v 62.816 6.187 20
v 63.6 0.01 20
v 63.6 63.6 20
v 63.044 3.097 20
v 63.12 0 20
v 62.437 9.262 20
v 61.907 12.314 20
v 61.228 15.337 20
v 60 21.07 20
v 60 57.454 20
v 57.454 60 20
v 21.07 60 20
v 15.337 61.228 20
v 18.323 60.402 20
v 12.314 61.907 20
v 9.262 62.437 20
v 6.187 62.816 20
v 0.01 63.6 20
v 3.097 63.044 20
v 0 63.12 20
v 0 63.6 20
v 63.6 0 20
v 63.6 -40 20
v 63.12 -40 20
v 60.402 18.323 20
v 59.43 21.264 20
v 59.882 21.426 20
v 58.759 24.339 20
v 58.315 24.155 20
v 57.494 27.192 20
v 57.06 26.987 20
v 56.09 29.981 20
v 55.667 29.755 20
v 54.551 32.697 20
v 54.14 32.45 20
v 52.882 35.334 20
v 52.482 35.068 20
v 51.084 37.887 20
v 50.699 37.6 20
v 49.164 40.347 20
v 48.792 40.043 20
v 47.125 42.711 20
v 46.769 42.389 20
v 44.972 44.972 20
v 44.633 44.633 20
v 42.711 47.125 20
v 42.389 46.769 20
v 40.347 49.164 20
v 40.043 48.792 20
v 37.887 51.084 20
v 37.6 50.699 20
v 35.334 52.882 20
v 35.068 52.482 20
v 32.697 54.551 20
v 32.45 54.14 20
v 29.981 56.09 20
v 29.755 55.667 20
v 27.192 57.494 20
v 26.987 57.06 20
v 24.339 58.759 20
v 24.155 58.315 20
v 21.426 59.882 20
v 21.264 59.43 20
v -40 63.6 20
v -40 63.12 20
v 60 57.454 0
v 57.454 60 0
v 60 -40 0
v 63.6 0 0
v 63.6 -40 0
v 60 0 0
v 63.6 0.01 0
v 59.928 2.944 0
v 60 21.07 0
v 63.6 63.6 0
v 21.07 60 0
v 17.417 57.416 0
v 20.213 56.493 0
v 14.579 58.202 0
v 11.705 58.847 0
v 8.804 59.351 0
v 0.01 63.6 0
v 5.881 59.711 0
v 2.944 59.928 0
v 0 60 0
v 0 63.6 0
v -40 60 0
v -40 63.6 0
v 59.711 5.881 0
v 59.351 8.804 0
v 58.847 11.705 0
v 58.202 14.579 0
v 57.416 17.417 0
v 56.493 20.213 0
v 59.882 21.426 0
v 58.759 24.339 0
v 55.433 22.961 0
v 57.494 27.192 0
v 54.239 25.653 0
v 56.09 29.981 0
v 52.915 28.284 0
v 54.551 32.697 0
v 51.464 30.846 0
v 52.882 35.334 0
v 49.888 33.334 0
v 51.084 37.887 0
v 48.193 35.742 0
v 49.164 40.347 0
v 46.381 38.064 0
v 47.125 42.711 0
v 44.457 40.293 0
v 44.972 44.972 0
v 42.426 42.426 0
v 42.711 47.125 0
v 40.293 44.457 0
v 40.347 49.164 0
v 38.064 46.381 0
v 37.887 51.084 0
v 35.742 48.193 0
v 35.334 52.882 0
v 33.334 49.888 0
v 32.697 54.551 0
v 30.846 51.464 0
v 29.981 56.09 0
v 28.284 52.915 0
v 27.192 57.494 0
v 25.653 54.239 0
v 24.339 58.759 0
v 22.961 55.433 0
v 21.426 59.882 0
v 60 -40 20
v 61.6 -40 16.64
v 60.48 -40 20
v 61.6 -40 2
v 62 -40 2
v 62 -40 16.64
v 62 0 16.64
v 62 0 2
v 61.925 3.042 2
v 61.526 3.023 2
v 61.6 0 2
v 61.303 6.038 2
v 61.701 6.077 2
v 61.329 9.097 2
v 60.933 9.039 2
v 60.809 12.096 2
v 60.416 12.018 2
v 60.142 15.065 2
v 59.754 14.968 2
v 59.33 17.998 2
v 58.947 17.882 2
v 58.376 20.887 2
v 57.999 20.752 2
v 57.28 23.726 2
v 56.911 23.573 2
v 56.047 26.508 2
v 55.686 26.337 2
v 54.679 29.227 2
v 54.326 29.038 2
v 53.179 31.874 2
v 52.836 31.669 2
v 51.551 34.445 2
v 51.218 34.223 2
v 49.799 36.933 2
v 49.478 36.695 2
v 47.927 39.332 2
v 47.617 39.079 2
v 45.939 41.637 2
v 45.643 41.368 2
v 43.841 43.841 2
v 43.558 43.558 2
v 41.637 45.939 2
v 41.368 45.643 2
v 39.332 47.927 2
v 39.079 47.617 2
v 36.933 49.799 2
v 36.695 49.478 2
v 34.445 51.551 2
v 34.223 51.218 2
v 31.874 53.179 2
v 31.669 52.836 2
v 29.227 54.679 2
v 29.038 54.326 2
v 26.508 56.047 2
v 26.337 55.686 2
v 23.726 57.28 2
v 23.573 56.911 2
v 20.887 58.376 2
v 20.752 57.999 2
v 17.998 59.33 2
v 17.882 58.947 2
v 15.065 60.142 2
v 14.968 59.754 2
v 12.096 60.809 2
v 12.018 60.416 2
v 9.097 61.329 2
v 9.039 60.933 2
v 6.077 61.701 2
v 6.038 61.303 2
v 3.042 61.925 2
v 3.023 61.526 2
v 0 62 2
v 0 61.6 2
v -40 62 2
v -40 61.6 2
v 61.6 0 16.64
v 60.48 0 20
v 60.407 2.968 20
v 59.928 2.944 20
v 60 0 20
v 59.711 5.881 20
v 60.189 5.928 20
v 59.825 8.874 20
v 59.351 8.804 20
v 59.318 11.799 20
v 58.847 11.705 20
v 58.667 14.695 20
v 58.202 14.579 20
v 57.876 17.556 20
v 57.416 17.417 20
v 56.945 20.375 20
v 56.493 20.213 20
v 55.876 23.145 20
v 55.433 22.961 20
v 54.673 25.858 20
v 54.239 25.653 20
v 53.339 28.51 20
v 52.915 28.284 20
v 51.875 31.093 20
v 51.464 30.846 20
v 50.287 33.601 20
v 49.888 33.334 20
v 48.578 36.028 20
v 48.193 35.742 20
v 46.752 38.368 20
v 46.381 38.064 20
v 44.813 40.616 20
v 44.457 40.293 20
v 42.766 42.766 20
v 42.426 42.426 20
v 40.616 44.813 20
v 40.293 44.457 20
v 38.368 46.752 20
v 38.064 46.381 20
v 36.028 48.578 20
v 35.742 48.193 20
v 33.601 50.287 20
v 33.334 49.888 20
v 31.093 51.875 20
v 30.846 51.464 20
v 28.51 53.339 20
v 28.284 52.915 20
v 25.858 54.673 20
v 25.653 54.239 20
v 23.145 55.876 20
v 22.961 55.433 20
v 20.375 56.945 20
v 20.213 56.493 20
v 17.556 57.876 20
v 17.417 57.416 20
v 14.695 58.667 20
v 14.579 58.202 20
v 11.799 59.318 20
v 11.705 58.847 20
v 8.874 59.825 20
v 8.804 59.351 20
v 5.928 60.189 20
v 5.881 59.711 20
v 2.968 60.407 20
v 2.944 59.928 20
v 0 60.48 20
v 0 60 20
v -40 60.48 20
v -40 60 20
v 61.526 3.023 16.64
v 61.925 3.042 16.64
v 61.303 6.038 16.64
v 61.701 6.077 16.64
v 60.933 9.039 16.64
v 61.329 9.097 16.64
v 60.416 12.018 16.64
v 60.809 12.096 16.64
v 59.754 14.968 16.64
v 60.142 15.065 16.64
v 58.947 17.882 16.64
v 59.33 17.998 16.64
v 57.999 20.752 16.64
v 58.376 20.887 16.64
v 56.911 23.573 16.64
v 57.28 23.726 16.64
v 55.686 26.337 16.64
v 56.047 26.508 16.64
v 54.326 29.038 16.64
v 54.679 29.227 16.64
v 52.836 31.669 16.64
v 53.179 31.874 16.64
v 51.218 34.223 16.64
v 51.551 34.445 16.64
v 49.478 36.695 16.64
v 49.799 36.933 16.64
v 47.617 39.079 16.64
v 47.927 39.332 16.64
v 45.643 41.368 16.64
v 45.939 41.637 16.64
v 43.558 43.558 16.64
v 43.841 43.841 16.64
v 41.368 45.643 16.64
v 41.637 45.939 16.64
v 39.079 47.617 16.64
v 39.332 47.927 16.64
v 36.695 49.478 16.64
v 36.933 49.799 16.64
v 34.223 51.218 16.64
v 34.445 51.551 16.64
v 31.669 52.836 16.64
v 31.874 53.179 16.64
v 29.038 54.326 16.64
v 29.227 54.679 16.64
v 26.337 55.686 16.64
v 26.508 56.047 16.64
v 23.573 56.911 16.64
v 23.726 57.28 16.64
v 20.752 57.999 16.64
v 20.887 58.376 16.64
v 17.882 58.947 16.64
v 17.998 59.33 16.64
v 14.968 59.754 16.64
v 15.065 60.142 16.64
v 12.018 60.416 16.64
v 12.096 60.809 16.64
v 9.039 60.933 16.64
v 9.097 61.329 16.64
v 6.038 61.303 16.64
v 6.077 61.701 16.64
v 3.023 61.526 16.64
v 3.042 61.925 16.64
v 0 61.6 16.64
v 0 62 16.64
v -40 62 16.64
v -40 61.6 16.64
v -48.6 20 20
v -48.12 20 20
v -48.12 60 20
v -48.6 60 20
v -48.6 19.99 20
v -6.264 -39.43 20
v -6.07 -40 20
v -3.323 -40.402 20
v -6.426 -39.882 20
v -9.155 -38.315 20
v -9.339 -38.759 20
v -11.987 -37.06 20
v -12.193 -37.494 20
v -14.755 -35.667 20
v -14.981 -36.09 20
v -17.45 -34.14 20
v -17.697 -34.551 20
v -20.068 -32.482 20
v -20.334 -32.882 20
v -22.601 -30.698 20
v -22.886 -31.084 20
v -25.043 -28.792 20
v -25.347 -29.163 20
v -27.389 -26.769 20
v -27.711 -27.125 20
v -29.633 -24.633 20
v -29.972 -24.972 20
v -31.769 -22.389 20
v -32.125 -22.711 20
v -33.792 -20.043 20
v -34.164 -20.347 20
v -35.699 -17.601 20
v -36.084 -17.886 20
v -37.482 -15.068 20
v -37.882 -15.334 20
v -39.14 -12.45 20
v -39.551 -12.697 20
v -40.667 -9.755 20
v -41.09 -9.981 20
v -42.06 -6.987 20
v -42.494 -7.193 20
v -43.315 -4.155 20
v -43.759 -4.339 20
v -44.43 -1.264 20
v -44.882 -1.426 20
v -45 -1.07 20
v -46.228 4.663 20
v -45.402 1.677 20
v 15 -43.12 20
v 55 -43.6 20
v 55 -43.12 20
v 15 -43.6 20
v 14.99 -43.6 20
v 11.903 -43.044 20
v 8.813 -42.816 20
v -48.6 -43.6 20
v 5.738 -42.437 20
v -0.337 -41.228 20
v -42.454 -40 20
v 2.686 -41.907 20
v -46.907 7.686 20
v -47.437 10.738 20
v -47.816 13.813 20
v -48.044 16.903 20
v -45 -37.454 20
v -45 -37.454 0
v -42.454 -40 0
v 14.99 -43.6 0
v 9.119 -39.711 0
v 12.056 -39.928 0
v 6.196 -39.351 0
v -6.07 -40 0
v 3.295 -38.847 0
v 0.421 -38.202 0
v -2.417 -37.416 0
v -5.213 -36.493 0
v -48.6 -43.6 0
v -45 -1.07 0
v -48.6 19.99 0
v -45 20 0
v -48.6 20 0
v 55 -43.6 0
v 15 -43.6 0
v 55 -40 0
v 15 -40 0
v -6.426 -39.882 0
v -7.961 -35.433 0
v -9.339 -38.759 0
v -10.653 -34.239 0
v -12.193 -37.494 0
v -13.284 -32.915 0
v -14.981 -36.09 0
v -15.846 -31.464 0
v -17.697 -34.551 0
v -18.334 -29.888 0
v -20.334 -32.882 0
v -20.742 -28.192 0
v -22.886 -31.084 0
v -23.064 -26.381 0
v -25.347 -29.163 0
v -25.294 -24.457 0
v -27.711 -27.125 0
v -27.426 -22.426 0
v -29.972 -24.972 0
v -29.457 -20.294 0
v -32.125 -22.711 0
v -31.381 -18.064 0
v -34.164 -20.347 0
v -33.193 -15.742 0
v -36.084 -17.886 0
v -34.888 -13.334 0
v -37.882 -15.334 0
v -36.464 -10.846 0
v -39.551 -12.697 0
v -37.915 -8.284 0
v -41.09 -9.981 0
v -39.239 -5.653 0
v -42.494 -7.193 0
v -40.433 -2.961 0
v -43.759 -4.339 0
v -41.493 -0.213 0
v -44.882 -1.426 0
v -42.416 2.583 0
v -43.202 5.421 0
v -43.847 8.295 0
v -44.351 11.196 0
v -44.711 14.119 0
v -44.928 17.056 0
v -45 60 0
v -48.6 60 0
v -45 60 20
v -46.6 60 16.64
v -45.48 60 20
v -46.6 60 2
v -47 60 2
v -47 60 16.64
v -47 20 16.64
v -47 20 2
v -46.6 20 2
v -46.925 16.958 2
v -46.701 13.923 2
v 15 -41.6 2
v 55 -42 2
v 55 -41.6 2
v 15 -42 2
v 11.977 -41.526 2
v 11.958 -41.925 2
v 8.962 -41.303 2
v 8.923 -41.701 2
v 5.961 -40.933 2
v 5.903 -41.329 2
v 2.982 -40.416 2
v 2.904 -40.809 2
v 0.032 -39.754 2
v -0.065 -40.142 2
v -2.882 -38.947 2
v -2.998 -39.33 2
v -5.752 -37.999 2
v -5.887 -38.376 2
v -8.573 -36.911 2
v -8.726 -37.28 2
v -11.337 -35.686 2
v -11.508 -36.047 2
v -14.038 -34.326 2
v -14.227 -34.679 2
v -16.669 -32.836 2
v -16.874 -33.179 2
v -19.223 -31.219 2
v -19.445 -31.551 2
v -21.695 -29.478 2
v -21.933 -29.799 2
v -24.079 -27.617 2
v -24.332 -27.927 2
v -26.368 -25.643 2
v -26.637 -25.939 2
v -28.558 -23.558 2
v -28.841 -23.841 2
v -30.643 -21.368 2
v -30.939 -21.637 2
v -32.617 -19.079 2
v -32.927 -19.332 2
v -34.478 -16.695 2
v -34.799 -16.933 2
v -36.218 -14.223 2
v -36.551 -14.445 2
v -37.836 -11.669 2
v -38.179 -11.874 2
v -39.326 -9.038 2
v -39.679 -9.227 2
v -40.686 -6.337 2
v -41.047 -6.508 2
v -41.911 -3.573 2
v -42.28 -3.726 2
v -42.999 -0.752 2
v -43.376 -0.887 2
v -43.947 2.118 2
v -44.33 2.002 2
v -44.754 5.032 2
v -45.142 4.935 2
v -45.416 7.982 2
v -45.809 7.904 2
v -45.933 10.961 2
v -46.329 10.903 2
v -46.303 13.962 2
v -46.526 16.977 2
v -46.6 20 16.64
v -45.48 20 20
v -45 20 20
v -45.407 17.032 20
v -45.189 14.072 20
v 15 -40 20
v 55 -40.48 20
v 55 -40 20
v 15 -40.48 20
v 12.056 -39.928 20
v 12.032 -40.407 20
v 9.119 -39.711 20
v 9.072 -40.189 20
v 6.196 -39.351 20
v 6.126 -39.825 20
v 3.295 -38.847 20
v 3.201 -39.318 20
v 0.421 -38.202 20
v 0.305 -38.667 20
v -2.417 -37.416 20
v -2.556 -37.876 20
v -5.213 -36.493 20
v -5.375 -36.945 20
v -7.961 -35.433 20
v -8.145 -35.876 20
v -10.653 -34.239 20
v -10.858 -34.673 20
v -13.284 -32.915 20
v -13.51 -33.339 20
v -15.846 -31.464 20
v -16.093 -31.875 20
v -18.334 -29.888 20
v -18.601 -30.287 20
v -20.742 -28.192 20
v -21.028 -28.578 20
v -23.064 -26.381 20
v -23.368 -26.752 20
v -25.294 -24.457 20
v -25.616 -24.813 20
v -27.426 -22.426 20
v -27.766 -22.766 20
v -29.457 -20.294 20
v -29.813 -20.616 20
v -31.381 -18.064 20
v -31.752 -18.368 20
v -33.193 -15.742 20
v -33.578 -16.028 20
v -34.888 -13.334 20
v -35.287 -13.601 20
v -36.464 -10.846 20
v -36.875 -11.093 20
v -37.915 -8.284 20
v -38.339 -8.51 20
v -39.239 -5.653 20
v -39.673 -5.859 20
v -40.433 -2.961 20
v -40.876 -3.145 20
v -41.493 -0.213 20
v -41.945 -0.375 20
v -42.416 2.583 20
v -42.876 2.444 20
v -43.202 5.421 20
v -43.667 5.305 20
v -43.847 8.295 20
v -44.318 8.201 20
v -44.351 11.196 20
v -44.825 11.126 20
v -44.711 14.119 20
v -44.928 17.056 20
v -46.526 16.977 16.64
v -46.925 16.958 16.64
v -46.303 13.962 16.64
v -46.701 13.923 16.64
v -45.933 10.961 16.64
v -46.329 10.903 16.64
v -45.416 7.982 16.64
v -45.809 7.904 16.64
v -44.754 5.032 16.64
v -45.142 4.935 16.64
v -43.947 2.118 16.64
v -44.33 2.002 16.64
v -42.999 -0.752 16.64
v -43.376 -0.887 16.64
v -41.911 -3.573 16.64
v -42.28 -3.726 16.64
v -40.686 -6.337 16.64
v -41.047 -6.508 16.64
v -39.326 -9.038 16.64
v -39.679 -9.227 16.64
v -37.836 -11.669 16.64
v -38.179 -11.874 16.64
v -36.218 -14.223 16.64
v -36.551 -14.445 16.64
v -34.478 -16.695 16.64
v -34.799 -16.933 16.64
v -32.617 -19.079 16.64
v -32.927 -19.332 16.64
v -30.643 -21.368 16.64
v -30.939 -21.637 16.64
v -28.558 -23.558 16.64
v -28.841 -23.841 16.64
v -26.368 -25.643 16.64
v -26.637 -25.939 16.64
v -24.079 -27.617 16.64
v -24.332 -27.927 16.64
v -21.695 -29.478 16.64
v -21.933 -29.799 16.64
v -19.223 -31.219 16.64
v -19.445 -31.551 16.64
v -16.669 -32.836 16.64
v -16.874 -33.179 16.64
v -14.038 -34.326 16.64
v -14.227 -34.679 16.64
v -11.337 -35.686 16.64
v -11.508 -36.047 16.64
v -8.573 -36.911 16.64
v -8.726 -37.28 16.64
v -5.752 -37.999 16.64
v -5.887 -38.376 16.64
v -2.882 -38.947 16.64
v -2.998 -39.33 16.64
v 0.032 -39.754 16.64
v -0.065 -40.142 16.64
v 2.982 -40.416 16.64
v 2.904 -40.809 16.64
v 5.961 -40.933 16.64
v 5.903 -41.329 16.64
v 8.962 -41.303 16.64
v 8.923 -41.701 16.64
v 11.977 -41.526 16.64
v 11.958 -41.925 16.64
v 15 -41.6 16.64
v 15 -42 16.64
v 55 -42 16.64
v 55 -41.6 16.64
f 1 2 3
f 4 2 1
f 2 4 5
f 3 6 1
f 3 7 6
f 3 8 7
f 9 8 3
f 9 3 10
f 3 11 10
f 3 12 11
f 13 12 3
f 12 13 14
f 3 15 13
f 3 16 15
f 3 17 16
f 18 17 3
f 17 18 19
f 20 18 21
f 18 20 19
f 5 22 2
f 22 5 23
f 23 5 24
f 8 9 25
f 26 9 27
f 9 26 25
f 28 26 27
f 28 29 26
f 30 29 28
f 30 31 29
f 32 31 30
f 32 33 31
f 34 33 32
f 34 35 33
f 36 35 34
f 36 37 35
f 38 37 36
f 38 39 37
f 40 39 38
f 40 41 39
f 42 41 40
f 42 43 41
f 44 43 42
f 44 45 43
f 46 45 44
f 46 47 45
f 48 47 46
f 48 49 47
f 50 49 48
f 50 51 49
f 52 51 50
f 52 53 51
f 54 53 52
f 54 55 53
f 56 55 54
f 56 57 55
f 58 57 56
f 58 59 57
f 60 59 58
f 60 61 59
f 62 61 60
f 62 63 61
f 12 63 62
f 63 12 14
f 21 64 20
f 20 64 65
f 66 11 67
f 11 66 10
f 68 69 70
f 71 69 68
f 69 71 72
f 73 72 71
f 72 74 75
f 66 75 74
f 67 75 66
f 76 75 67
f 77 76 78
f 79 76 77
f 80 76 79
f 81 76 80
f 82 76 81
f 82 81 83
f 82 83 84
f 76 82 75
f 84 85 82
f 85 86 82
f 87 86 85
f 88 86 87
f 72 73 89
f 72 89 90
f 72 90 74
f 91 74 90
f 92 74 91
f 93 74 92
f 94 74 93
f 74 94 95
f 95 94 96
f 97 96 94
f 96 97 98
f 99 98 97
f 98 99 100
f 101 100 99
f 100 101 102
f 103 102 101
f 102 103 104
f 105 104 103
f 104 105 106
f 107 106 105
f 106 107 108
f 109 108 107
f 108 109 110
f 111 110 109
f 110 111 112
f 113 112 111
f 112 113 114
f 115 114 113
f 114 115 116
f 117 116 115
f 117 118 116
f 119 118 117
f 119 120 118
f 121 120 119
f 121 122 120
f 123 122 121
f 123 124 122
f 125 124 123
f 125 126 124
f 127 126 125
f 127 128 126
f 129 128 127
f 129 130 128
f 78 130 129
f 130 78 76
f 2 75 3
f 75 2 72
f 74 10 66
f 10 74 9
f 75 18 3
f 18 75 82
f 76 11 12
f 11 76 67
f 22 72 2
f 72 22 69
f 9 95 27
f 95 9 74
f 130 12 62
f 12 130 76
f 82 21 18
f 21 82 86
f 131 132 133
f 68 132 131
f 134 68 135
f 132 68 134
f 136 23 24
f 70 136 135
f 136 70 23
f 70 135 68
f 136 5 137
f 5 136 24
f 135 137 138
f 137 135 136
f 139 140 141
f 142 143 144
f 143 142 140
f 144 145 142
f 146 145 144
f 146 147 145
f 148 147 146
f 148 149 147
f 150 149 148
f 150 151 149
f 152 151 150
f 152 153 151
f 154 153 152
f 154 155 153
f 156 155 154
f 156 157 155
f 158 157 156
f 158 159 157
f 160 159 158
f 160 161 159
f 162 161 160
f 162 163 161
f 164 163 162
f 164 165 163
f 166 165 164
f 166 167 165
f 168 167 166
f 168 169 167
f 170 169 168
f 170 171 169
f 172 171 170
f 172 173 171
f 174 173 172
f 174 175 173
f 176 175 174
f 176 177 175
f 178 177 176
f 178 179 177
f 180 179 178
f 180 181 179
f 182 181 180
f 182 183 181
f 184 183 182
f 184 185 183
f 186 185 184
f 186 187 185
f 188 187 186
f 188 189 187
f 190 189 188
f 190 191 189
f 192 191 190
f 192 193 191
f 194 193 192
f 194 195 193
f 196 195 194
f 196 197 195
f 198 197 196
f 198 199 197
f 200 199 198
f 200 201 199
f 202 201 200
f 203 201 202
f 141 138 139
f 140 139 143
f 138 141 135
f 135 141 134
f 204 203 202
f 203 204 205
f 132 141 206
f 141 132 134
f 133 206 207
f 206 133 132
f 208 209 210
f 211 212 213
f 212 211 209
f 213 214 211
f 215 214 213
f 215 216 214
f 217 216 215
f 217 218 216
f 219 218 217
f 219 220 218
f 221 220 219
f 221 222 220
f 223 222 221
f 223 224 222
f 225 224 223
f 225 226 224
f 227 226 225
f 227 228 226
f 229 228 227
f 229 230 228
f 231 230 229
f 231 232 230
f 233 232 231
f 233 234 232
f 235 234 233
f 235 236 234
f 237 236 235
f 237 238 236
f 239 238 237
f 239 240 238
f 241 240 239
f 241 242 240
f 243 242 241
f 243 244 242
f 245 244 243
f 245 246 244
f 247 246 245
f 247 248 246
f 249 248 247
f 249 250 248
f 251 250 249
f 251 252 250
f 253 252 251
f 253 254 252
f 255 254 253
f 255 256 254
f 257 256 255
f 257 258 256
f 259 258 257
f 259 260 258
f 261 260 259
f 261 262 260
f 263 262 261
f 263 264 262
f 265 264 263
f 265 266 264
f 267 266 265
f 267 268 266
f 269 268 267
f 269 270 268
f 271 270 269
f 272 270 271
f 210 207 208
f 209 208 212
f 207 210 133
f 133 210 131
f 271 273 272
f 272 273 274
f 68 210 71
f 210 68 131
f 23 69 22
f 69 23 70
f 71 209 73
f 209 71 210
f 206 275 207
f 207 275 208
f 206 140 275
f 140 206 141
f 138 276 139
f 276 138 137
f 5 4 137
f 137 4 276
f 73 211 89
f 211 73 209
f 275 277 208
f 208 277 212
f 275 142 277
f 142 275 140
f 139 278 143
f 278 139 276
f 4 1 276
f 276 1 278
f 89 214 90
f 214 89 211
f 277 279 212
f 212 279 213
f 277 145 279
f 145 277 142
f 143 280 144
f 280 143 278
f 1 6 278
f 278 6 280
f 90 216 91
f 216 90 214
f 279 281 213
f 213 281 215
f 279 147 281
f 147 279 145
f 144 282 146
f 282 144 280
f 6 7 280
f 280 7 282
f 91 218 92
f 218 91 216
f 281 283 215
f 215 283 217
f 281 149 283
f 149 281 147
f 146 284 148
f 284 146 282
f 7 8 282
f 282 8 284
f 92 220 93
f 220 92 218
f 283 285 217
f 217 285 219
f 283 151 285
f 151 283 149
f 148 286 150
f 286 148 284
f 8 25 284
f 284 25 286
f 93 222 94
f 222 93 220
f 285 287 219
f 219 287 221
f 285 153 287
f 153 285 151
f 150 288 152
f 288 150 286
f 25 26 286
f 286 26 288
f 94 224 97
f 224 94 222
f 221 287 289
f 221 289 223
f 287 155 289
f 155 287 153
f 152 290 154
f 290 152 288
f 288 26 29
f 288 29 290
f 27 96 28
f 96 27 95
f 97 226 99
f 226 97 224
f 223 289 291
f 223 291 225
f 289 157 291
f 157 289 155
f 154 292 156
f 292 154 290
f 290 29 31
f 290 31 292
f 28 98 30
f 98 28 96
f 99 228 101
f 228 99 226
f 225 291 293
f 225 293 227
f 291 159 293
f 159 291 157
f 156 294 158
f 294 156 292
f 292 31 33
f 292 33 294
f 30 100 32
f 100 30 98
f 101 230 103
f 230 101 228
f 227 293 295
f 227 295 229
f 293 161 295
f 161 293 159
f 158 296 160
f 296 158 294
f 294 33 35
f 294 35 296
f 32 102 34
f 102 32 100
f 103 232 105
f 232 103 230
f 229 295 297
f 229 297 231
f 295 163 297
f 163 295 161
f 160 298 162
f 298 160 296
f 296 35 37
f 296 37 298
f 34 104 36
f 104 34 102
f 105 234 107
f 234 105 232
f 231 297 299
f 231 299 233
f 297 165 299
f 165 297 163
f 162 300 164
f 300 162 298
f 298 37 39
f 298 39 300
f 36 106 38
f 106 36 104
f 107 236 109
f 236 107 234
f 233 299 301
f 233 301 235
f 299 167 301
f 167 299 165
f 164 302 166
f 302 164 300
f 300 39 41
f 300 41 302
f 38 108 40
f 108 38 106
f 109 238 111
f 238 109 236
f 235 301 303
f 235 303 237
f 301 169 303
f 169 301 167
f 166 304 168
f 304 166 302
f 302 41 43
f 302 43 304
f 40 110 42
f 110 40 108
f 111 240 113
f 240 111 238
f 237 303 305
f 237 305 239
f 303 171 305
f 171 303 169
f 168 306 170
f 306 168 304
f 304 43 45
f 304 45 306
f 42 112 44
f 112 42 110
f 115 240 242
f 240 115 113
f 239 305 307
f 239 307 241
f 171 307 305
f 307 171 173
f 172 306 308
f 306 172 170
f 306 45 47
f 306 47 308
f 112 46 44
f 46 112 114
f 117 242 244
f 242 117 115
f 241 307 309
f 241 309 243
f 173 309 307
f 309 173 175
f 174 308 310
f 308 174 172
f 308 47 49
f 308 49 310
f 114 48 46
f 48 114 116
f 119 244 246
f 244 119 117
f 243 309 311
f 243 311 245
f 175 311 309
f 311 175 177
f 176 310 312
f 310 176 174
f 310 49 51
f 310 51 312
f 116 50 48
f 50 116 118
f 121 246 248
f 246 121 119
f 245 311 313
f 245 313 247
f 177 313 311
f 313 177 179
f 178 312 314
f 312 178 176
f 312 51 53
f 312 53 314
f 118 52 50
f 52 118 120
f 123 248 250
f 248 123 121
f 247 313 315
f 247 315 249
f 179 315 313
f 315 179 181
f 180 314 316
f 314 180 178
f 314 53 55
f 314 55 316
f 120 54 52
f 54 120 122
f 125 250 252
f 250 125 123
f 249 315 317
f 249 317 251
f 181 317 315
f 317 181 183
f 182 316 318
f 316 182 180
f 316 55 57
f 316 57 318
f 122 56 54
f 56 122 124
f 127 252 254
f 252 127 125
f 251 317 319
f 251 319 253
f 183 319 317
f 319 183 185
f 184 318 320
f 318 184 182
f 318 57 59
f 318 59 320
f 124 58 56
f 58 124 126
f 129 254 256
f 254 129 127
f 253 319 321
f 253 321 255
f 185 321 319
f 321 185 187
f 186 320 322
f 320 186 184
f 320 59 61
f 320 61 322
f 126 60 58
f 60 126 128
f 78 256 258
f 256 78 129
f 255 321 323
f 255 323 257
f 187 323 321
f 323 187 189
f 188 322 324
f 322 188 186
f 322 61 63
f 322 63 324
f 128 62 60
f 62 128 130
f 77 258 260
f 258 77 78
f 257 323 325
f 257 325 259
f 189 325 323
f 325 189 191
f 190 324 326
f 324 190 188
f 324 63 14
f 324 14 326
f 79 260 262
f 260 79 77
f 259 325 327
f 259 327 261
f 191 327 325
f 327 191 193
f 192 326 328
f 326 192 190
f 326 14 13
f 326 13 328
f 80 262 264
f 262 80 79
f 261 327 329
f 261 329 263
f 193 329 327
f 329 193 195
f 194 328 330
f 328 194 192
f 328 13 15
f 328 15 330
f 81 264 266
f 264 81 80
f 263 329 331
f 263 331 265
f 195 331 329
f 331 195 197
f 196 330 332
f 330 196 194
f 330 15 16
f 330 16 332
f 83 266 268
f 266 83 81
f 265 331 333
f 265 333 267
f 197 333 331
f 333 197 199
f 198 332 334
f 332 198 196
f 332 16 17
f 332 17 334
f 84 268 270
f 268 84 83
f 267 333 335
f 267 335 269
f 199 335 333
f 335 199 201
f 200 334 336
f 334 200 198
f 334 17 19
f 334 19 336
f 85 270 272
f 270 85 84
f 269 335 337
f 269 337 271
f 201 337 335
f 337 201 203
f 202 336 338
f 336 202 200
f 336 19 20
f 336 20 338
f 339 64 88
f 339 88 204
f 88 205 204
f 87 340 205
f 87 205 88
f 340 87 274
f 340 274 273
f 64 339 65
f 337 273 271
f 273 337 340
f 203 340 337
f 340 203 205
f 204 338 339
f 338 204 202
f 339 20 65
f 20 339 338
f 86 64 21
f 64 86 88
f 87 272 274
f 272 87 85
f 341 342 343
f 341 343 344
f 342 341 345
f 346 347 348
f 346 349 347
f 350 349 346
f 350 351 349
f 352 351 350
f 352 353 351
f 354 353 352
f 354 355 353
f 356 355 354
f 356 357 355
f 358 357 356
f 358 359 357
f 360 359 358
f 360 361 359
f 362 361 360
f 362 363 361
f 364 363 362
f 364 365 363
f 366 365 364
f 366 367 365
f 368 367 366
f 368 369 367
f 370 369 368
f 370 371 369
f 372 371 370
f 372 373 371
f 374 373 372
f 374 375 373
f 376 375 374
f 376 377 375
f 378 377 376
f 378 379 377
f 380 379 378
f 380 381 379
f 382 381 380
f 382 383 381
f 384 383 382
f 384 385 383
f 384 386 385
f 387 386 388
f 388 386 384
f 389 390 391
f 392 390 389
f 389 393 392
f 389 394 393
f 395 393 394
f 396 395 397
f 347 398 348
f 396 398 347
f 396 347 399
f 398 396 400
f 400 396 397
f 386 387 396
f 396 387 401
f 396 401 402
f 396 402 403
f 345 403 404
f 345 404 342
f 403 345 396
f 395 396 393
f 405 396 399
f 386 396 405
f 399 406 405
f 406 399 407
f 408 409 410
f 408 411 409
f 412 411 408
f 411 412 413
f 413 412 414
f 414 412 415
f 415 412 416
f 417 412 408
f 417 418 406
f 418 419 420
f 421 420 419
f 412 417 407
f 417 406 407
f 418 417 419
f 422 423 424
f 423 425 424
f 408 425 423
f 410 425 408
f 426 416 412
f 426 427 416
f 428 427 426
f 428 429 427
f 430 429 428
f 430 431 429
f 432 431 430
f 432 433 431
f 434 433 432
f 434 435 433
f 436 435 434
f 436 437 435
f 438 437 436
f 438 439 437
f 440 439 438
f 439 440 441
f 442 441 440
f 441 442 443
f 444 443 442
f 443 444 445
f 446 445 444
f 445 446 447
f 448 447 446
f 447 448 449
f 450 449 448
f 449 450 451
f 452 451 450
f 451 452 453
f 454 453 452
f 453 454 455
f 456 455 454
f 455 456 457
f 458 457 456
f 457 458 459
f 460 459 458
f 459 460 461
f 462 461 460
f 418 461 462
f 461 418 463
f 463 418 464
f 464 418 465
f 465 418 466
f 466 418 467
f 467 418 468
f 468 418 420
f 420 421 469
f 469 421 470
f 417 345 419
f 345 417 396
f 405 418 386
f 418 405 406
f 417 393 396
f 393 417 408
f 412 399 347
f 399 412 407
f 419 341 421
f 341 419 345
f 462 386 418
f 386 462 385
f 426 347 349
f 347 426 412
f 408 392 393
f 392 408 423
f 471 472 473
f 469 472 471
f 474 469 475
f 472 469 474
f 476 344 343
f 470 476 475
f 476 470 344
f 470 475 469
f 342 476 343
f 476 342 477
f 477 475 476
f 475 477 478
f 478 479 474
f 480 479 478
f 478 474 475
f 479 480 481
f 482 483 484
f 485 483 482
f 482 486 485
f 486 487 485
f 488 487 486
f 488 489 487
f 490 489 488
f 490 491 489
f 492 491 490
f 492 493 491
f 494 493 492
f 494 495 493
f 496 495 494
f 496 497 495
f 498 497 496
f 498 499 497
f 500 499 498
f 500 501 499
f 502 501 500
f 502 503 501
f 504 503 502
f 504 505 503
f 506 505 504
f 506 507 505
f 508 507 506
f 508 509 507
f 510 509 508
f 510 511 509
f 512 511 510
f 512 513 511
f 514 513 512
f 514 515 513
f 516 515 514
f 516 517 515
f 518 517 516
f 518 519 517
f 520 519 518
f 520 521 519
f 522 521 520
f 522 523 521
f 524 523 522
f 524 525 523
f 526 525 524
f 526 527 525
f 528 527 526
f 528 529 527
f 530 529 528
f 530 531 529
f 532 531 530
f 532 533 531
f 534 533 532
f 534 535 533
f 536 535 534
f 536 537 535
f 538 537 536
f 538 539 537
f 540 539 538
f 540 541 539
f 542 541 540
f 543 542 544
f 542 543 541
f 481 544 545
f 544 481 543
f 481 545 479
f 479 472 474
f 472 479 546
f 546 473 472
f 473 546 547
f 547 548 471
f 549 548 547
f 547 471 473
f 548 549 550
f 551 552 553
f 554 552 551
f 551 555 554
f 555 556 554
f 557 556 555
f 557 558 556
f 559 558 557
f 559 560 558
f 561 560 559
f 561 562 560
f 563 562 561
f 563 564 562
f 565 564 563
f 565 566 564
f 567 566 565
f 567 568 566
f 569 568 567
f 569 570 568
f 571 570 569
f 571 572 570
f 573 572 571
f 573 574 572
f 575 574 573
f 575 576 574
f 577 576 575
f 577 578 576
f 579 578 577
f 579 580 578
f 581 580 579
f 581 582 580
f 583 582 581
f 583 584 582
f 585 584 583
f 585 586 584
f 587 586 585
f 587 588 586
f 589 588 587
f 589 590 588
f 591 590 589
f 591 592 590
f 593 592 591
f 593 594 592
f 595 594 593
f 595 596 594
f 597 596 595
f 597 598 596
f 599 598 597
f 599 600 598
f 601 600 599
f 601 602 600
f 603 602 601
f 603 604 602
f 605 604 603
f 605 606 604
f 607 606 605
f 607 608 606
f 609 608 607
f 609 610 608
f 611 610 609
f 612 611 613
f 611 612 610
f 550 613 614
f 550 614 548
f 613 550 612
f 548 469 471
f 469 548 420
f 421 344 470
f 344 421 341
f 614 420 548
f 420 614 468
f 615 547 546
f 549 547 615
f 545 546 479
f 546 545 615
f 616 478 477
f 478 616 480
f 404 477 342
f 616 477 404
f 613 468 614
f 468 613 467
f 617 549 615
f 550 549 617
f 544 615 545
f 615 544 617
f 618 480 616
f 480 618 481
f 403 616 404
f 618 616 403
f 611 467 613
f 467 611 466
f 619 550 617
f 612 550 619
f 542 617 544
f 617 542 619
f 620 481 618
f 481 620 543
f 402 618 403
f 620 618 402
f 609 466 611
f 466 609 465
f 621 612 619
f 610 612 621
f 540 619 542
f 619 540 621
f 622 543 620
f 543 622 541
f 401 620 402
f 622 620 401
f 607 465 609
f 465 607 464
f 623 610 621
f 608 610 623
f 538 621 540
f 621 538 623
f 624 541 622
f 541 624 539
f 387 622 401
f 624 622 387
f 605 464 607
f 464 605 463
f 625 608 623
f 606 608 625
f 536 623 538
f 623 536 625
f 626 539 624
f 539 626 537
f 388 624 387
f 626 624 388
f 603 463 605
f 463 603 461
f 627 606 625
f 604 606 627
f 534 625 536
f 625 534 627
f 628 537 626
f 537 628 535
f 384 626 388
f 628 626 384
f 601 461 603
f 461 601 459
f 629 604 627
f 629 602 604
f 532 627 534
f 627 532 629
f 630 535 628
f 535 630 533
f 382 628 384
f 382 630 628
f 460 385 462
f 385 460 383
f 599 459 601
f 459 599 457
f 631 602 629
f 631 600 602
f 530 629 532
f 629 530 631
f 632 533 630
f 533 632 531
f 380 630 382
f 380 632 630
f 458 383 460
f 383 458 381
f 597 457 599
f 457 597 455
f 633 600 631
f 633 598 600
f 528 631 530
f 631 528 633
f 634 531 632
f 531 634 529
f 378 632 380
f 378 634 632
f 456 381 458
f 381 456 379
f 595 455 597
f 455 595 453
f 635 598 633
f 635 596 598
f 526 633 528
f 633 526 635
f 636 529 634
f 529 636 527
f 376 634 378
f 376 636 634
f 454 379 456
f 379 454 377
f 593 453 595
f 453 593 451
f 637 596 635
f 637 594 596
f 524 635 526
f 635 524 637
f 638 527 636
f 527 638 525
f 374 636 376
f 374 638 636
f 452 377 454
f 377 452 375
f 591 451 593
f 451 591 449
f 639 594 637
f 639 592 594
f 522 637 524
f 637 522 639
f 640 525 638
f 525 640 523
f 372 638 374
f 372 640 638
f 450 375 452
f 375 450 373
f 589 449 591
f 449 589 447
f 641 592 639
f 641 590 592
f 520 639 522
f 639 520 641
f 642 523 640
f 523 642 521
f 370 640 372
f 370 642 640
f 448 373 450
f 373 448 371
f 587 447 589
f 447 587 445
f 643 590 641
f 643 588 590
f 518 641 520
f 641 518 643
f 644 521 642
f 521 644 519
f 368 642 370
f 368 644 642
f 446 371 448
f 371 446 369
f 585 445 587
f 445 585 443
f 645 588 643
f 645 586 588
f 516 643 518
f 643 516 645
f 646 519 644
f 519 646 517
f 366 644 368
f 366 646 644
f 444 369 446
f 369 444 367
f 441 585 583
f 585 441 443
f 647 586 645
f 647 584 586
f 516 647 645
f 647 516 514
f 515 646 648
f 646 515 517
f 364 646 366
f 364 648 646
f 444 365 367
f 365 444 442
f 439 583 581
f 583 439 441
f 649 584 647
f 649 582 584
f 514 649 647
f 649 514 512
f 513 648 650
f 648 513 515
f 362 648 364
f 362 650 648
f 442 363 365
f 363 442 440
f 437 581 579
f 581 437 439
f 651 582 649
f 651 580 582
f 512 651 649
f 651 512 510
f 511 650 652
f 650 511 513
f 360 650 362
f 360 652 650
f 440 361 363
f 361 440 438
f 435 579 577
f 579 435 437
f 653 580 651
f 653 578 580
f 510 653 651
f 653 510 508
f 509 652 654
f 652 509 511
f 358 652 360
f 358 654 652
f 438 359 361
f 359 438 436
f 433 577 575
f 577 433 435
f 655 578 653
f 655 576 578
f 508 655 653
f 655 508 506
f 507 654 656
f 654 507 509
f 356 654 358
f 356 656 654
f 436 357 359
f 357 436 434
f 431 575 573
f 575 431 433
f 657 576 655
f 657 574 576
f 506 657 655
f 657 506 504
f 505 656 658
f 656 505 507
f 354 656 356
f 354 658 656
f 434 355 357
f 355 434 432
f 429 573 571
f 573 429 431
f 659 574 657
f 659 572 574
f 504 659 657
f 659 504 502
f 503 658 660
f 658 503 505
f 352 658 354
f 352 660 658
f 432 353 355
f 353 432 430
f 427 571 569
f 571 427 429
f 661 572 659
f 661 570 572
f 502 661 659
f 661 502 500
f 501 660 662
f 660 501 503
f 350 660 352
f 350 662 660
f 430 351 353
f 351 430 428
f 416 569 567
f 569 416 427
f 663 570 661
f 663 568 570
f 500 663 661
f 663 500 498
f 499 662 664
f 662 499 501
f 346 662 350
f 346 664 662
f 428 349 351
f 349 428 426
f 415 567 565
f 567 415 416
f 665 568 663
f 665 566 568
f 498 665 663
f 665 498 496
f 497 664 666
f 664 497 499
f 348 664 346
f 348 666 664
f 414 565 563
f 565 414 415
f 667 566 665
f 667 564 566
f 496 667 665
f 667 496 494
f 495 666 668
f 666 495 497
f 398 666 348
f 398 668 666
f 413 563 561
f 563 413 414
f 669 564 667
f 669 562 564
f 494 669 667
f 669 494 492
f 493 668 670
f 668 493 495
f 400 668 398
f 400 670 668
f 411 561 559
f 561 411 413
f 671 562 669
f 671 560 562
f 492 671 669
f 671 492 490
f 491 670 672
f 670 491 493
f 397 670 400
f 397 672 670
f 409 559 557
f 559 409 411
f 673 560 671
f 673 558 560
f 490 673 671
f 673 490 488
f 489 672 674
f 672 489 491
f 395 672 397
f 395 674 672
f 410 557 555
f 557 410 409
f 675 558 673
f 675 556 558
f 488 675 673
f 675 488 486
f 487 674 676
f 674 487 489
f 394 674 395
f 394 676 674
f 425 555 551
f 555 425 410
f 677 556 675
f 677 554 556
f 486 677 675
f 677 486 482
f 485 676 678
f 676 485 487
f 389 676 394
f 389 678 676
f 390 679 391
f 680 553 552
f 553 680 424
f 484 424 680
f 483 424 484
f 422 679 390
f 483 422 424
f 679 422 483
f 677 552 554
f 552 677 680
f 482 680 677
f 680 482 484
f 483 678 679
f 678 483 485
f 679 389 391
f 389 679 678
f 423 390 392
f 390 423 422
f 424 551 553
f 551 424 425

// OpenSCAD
/*
   photo_background_stand.scad

   (c) olikraus@gmail.com
 
   This work is licensed under the Creative Commons Attribution-NonCommercial-ShareAlike 4.0 International License. 
   To view a copy of this license, visit http://creativecommons.org/licenses/by-nc-sa/4.0/.
   

   v1.0 initial version
   v1.1 changed infill from 60% to 40%, increased radius
      increased channel depth
   
*/  

/* [basic] */

// The gap for the paper in mm
paper_gap = 0.4;

// The inner radius of the stand in mm
inner_radius = 60;

// The straight extension of the channel in mm
extension_length = 40;

// The width of the stand in mm
channel_depth = 20;

/* [advanced] */

side_wall = 1.6;

bottom_wall = 2;

fragments=128;


chamfer = side_wall*0.7;
channel_height = side_wall*2+paper_gap;
outer_radius = inner_radius + channel_height;

upoly = [
  [0,0],
  [side_wall*2+paper_gap, 0],
  [side_wall*2+paper_gap, channel_depth],
  [side_wall+paper_gap+chamfer, channel_depth],
  [side_wall+paper_gap, channel_depth-3*chamfer],
  [side_wall+paper_gap, bottom_wall],
  [side_wall, bottom_wall],
  [side_wall, channel_depth-3*chamfer],
  [side_wall-chamfer, channel_depth],
  [0, channel_depth]
];

opoly = [
  [0,0],
  [side_wall*2+paper_gap, 0],
  [side_wall*2+paper_gap, channel_depth+0.01],
  [0, channel_depth+0.01]
];

module pbs() {
  union() {
    rotate([90,0,0])
    linear_extrude(height = extension_length)
      translate([inner_radius,0,0])
      polygon(upoly);

    rotate_extrude(angle = 90, convexity = 4, $fn=fragments)
      translate([inner_radius,0,0])
      polygon(upoly);

    rotate([0,-90,0])
    linear_extrude(height = extension_length)
      translate([0,inner_radius+channel_height,0])
      rotate([0,0,-90])
      polygon(upoly);

    difference()
    {
      union() {
        translate([outer_radius-channel_height, outer_radius-channel_height, 0])
        rotate([0,0,45])
        translate([0,0,channel_depth/2])
        cube([channel_height, channel_height, channel_depth], center=true);
          
        translate([outer_radius-channel_height,0.01,0])
        cube([channel_height, outer_radius-0.01, channel_depth]);

        translate([0.01,outer_radius,0])
        rotate([0,0,-90])
        cube([channel_height, outer_radius-0.01, channel_depth]);
      }
      rotate_extrude(angle = 90, convexity = 4, $fn=fragments)
        translate([inner_radius,0,0])
        polygon(opoly);
    }
  }
}

pbs();
translate([15,20,0])
rotate([0,0,180])
pbs();
